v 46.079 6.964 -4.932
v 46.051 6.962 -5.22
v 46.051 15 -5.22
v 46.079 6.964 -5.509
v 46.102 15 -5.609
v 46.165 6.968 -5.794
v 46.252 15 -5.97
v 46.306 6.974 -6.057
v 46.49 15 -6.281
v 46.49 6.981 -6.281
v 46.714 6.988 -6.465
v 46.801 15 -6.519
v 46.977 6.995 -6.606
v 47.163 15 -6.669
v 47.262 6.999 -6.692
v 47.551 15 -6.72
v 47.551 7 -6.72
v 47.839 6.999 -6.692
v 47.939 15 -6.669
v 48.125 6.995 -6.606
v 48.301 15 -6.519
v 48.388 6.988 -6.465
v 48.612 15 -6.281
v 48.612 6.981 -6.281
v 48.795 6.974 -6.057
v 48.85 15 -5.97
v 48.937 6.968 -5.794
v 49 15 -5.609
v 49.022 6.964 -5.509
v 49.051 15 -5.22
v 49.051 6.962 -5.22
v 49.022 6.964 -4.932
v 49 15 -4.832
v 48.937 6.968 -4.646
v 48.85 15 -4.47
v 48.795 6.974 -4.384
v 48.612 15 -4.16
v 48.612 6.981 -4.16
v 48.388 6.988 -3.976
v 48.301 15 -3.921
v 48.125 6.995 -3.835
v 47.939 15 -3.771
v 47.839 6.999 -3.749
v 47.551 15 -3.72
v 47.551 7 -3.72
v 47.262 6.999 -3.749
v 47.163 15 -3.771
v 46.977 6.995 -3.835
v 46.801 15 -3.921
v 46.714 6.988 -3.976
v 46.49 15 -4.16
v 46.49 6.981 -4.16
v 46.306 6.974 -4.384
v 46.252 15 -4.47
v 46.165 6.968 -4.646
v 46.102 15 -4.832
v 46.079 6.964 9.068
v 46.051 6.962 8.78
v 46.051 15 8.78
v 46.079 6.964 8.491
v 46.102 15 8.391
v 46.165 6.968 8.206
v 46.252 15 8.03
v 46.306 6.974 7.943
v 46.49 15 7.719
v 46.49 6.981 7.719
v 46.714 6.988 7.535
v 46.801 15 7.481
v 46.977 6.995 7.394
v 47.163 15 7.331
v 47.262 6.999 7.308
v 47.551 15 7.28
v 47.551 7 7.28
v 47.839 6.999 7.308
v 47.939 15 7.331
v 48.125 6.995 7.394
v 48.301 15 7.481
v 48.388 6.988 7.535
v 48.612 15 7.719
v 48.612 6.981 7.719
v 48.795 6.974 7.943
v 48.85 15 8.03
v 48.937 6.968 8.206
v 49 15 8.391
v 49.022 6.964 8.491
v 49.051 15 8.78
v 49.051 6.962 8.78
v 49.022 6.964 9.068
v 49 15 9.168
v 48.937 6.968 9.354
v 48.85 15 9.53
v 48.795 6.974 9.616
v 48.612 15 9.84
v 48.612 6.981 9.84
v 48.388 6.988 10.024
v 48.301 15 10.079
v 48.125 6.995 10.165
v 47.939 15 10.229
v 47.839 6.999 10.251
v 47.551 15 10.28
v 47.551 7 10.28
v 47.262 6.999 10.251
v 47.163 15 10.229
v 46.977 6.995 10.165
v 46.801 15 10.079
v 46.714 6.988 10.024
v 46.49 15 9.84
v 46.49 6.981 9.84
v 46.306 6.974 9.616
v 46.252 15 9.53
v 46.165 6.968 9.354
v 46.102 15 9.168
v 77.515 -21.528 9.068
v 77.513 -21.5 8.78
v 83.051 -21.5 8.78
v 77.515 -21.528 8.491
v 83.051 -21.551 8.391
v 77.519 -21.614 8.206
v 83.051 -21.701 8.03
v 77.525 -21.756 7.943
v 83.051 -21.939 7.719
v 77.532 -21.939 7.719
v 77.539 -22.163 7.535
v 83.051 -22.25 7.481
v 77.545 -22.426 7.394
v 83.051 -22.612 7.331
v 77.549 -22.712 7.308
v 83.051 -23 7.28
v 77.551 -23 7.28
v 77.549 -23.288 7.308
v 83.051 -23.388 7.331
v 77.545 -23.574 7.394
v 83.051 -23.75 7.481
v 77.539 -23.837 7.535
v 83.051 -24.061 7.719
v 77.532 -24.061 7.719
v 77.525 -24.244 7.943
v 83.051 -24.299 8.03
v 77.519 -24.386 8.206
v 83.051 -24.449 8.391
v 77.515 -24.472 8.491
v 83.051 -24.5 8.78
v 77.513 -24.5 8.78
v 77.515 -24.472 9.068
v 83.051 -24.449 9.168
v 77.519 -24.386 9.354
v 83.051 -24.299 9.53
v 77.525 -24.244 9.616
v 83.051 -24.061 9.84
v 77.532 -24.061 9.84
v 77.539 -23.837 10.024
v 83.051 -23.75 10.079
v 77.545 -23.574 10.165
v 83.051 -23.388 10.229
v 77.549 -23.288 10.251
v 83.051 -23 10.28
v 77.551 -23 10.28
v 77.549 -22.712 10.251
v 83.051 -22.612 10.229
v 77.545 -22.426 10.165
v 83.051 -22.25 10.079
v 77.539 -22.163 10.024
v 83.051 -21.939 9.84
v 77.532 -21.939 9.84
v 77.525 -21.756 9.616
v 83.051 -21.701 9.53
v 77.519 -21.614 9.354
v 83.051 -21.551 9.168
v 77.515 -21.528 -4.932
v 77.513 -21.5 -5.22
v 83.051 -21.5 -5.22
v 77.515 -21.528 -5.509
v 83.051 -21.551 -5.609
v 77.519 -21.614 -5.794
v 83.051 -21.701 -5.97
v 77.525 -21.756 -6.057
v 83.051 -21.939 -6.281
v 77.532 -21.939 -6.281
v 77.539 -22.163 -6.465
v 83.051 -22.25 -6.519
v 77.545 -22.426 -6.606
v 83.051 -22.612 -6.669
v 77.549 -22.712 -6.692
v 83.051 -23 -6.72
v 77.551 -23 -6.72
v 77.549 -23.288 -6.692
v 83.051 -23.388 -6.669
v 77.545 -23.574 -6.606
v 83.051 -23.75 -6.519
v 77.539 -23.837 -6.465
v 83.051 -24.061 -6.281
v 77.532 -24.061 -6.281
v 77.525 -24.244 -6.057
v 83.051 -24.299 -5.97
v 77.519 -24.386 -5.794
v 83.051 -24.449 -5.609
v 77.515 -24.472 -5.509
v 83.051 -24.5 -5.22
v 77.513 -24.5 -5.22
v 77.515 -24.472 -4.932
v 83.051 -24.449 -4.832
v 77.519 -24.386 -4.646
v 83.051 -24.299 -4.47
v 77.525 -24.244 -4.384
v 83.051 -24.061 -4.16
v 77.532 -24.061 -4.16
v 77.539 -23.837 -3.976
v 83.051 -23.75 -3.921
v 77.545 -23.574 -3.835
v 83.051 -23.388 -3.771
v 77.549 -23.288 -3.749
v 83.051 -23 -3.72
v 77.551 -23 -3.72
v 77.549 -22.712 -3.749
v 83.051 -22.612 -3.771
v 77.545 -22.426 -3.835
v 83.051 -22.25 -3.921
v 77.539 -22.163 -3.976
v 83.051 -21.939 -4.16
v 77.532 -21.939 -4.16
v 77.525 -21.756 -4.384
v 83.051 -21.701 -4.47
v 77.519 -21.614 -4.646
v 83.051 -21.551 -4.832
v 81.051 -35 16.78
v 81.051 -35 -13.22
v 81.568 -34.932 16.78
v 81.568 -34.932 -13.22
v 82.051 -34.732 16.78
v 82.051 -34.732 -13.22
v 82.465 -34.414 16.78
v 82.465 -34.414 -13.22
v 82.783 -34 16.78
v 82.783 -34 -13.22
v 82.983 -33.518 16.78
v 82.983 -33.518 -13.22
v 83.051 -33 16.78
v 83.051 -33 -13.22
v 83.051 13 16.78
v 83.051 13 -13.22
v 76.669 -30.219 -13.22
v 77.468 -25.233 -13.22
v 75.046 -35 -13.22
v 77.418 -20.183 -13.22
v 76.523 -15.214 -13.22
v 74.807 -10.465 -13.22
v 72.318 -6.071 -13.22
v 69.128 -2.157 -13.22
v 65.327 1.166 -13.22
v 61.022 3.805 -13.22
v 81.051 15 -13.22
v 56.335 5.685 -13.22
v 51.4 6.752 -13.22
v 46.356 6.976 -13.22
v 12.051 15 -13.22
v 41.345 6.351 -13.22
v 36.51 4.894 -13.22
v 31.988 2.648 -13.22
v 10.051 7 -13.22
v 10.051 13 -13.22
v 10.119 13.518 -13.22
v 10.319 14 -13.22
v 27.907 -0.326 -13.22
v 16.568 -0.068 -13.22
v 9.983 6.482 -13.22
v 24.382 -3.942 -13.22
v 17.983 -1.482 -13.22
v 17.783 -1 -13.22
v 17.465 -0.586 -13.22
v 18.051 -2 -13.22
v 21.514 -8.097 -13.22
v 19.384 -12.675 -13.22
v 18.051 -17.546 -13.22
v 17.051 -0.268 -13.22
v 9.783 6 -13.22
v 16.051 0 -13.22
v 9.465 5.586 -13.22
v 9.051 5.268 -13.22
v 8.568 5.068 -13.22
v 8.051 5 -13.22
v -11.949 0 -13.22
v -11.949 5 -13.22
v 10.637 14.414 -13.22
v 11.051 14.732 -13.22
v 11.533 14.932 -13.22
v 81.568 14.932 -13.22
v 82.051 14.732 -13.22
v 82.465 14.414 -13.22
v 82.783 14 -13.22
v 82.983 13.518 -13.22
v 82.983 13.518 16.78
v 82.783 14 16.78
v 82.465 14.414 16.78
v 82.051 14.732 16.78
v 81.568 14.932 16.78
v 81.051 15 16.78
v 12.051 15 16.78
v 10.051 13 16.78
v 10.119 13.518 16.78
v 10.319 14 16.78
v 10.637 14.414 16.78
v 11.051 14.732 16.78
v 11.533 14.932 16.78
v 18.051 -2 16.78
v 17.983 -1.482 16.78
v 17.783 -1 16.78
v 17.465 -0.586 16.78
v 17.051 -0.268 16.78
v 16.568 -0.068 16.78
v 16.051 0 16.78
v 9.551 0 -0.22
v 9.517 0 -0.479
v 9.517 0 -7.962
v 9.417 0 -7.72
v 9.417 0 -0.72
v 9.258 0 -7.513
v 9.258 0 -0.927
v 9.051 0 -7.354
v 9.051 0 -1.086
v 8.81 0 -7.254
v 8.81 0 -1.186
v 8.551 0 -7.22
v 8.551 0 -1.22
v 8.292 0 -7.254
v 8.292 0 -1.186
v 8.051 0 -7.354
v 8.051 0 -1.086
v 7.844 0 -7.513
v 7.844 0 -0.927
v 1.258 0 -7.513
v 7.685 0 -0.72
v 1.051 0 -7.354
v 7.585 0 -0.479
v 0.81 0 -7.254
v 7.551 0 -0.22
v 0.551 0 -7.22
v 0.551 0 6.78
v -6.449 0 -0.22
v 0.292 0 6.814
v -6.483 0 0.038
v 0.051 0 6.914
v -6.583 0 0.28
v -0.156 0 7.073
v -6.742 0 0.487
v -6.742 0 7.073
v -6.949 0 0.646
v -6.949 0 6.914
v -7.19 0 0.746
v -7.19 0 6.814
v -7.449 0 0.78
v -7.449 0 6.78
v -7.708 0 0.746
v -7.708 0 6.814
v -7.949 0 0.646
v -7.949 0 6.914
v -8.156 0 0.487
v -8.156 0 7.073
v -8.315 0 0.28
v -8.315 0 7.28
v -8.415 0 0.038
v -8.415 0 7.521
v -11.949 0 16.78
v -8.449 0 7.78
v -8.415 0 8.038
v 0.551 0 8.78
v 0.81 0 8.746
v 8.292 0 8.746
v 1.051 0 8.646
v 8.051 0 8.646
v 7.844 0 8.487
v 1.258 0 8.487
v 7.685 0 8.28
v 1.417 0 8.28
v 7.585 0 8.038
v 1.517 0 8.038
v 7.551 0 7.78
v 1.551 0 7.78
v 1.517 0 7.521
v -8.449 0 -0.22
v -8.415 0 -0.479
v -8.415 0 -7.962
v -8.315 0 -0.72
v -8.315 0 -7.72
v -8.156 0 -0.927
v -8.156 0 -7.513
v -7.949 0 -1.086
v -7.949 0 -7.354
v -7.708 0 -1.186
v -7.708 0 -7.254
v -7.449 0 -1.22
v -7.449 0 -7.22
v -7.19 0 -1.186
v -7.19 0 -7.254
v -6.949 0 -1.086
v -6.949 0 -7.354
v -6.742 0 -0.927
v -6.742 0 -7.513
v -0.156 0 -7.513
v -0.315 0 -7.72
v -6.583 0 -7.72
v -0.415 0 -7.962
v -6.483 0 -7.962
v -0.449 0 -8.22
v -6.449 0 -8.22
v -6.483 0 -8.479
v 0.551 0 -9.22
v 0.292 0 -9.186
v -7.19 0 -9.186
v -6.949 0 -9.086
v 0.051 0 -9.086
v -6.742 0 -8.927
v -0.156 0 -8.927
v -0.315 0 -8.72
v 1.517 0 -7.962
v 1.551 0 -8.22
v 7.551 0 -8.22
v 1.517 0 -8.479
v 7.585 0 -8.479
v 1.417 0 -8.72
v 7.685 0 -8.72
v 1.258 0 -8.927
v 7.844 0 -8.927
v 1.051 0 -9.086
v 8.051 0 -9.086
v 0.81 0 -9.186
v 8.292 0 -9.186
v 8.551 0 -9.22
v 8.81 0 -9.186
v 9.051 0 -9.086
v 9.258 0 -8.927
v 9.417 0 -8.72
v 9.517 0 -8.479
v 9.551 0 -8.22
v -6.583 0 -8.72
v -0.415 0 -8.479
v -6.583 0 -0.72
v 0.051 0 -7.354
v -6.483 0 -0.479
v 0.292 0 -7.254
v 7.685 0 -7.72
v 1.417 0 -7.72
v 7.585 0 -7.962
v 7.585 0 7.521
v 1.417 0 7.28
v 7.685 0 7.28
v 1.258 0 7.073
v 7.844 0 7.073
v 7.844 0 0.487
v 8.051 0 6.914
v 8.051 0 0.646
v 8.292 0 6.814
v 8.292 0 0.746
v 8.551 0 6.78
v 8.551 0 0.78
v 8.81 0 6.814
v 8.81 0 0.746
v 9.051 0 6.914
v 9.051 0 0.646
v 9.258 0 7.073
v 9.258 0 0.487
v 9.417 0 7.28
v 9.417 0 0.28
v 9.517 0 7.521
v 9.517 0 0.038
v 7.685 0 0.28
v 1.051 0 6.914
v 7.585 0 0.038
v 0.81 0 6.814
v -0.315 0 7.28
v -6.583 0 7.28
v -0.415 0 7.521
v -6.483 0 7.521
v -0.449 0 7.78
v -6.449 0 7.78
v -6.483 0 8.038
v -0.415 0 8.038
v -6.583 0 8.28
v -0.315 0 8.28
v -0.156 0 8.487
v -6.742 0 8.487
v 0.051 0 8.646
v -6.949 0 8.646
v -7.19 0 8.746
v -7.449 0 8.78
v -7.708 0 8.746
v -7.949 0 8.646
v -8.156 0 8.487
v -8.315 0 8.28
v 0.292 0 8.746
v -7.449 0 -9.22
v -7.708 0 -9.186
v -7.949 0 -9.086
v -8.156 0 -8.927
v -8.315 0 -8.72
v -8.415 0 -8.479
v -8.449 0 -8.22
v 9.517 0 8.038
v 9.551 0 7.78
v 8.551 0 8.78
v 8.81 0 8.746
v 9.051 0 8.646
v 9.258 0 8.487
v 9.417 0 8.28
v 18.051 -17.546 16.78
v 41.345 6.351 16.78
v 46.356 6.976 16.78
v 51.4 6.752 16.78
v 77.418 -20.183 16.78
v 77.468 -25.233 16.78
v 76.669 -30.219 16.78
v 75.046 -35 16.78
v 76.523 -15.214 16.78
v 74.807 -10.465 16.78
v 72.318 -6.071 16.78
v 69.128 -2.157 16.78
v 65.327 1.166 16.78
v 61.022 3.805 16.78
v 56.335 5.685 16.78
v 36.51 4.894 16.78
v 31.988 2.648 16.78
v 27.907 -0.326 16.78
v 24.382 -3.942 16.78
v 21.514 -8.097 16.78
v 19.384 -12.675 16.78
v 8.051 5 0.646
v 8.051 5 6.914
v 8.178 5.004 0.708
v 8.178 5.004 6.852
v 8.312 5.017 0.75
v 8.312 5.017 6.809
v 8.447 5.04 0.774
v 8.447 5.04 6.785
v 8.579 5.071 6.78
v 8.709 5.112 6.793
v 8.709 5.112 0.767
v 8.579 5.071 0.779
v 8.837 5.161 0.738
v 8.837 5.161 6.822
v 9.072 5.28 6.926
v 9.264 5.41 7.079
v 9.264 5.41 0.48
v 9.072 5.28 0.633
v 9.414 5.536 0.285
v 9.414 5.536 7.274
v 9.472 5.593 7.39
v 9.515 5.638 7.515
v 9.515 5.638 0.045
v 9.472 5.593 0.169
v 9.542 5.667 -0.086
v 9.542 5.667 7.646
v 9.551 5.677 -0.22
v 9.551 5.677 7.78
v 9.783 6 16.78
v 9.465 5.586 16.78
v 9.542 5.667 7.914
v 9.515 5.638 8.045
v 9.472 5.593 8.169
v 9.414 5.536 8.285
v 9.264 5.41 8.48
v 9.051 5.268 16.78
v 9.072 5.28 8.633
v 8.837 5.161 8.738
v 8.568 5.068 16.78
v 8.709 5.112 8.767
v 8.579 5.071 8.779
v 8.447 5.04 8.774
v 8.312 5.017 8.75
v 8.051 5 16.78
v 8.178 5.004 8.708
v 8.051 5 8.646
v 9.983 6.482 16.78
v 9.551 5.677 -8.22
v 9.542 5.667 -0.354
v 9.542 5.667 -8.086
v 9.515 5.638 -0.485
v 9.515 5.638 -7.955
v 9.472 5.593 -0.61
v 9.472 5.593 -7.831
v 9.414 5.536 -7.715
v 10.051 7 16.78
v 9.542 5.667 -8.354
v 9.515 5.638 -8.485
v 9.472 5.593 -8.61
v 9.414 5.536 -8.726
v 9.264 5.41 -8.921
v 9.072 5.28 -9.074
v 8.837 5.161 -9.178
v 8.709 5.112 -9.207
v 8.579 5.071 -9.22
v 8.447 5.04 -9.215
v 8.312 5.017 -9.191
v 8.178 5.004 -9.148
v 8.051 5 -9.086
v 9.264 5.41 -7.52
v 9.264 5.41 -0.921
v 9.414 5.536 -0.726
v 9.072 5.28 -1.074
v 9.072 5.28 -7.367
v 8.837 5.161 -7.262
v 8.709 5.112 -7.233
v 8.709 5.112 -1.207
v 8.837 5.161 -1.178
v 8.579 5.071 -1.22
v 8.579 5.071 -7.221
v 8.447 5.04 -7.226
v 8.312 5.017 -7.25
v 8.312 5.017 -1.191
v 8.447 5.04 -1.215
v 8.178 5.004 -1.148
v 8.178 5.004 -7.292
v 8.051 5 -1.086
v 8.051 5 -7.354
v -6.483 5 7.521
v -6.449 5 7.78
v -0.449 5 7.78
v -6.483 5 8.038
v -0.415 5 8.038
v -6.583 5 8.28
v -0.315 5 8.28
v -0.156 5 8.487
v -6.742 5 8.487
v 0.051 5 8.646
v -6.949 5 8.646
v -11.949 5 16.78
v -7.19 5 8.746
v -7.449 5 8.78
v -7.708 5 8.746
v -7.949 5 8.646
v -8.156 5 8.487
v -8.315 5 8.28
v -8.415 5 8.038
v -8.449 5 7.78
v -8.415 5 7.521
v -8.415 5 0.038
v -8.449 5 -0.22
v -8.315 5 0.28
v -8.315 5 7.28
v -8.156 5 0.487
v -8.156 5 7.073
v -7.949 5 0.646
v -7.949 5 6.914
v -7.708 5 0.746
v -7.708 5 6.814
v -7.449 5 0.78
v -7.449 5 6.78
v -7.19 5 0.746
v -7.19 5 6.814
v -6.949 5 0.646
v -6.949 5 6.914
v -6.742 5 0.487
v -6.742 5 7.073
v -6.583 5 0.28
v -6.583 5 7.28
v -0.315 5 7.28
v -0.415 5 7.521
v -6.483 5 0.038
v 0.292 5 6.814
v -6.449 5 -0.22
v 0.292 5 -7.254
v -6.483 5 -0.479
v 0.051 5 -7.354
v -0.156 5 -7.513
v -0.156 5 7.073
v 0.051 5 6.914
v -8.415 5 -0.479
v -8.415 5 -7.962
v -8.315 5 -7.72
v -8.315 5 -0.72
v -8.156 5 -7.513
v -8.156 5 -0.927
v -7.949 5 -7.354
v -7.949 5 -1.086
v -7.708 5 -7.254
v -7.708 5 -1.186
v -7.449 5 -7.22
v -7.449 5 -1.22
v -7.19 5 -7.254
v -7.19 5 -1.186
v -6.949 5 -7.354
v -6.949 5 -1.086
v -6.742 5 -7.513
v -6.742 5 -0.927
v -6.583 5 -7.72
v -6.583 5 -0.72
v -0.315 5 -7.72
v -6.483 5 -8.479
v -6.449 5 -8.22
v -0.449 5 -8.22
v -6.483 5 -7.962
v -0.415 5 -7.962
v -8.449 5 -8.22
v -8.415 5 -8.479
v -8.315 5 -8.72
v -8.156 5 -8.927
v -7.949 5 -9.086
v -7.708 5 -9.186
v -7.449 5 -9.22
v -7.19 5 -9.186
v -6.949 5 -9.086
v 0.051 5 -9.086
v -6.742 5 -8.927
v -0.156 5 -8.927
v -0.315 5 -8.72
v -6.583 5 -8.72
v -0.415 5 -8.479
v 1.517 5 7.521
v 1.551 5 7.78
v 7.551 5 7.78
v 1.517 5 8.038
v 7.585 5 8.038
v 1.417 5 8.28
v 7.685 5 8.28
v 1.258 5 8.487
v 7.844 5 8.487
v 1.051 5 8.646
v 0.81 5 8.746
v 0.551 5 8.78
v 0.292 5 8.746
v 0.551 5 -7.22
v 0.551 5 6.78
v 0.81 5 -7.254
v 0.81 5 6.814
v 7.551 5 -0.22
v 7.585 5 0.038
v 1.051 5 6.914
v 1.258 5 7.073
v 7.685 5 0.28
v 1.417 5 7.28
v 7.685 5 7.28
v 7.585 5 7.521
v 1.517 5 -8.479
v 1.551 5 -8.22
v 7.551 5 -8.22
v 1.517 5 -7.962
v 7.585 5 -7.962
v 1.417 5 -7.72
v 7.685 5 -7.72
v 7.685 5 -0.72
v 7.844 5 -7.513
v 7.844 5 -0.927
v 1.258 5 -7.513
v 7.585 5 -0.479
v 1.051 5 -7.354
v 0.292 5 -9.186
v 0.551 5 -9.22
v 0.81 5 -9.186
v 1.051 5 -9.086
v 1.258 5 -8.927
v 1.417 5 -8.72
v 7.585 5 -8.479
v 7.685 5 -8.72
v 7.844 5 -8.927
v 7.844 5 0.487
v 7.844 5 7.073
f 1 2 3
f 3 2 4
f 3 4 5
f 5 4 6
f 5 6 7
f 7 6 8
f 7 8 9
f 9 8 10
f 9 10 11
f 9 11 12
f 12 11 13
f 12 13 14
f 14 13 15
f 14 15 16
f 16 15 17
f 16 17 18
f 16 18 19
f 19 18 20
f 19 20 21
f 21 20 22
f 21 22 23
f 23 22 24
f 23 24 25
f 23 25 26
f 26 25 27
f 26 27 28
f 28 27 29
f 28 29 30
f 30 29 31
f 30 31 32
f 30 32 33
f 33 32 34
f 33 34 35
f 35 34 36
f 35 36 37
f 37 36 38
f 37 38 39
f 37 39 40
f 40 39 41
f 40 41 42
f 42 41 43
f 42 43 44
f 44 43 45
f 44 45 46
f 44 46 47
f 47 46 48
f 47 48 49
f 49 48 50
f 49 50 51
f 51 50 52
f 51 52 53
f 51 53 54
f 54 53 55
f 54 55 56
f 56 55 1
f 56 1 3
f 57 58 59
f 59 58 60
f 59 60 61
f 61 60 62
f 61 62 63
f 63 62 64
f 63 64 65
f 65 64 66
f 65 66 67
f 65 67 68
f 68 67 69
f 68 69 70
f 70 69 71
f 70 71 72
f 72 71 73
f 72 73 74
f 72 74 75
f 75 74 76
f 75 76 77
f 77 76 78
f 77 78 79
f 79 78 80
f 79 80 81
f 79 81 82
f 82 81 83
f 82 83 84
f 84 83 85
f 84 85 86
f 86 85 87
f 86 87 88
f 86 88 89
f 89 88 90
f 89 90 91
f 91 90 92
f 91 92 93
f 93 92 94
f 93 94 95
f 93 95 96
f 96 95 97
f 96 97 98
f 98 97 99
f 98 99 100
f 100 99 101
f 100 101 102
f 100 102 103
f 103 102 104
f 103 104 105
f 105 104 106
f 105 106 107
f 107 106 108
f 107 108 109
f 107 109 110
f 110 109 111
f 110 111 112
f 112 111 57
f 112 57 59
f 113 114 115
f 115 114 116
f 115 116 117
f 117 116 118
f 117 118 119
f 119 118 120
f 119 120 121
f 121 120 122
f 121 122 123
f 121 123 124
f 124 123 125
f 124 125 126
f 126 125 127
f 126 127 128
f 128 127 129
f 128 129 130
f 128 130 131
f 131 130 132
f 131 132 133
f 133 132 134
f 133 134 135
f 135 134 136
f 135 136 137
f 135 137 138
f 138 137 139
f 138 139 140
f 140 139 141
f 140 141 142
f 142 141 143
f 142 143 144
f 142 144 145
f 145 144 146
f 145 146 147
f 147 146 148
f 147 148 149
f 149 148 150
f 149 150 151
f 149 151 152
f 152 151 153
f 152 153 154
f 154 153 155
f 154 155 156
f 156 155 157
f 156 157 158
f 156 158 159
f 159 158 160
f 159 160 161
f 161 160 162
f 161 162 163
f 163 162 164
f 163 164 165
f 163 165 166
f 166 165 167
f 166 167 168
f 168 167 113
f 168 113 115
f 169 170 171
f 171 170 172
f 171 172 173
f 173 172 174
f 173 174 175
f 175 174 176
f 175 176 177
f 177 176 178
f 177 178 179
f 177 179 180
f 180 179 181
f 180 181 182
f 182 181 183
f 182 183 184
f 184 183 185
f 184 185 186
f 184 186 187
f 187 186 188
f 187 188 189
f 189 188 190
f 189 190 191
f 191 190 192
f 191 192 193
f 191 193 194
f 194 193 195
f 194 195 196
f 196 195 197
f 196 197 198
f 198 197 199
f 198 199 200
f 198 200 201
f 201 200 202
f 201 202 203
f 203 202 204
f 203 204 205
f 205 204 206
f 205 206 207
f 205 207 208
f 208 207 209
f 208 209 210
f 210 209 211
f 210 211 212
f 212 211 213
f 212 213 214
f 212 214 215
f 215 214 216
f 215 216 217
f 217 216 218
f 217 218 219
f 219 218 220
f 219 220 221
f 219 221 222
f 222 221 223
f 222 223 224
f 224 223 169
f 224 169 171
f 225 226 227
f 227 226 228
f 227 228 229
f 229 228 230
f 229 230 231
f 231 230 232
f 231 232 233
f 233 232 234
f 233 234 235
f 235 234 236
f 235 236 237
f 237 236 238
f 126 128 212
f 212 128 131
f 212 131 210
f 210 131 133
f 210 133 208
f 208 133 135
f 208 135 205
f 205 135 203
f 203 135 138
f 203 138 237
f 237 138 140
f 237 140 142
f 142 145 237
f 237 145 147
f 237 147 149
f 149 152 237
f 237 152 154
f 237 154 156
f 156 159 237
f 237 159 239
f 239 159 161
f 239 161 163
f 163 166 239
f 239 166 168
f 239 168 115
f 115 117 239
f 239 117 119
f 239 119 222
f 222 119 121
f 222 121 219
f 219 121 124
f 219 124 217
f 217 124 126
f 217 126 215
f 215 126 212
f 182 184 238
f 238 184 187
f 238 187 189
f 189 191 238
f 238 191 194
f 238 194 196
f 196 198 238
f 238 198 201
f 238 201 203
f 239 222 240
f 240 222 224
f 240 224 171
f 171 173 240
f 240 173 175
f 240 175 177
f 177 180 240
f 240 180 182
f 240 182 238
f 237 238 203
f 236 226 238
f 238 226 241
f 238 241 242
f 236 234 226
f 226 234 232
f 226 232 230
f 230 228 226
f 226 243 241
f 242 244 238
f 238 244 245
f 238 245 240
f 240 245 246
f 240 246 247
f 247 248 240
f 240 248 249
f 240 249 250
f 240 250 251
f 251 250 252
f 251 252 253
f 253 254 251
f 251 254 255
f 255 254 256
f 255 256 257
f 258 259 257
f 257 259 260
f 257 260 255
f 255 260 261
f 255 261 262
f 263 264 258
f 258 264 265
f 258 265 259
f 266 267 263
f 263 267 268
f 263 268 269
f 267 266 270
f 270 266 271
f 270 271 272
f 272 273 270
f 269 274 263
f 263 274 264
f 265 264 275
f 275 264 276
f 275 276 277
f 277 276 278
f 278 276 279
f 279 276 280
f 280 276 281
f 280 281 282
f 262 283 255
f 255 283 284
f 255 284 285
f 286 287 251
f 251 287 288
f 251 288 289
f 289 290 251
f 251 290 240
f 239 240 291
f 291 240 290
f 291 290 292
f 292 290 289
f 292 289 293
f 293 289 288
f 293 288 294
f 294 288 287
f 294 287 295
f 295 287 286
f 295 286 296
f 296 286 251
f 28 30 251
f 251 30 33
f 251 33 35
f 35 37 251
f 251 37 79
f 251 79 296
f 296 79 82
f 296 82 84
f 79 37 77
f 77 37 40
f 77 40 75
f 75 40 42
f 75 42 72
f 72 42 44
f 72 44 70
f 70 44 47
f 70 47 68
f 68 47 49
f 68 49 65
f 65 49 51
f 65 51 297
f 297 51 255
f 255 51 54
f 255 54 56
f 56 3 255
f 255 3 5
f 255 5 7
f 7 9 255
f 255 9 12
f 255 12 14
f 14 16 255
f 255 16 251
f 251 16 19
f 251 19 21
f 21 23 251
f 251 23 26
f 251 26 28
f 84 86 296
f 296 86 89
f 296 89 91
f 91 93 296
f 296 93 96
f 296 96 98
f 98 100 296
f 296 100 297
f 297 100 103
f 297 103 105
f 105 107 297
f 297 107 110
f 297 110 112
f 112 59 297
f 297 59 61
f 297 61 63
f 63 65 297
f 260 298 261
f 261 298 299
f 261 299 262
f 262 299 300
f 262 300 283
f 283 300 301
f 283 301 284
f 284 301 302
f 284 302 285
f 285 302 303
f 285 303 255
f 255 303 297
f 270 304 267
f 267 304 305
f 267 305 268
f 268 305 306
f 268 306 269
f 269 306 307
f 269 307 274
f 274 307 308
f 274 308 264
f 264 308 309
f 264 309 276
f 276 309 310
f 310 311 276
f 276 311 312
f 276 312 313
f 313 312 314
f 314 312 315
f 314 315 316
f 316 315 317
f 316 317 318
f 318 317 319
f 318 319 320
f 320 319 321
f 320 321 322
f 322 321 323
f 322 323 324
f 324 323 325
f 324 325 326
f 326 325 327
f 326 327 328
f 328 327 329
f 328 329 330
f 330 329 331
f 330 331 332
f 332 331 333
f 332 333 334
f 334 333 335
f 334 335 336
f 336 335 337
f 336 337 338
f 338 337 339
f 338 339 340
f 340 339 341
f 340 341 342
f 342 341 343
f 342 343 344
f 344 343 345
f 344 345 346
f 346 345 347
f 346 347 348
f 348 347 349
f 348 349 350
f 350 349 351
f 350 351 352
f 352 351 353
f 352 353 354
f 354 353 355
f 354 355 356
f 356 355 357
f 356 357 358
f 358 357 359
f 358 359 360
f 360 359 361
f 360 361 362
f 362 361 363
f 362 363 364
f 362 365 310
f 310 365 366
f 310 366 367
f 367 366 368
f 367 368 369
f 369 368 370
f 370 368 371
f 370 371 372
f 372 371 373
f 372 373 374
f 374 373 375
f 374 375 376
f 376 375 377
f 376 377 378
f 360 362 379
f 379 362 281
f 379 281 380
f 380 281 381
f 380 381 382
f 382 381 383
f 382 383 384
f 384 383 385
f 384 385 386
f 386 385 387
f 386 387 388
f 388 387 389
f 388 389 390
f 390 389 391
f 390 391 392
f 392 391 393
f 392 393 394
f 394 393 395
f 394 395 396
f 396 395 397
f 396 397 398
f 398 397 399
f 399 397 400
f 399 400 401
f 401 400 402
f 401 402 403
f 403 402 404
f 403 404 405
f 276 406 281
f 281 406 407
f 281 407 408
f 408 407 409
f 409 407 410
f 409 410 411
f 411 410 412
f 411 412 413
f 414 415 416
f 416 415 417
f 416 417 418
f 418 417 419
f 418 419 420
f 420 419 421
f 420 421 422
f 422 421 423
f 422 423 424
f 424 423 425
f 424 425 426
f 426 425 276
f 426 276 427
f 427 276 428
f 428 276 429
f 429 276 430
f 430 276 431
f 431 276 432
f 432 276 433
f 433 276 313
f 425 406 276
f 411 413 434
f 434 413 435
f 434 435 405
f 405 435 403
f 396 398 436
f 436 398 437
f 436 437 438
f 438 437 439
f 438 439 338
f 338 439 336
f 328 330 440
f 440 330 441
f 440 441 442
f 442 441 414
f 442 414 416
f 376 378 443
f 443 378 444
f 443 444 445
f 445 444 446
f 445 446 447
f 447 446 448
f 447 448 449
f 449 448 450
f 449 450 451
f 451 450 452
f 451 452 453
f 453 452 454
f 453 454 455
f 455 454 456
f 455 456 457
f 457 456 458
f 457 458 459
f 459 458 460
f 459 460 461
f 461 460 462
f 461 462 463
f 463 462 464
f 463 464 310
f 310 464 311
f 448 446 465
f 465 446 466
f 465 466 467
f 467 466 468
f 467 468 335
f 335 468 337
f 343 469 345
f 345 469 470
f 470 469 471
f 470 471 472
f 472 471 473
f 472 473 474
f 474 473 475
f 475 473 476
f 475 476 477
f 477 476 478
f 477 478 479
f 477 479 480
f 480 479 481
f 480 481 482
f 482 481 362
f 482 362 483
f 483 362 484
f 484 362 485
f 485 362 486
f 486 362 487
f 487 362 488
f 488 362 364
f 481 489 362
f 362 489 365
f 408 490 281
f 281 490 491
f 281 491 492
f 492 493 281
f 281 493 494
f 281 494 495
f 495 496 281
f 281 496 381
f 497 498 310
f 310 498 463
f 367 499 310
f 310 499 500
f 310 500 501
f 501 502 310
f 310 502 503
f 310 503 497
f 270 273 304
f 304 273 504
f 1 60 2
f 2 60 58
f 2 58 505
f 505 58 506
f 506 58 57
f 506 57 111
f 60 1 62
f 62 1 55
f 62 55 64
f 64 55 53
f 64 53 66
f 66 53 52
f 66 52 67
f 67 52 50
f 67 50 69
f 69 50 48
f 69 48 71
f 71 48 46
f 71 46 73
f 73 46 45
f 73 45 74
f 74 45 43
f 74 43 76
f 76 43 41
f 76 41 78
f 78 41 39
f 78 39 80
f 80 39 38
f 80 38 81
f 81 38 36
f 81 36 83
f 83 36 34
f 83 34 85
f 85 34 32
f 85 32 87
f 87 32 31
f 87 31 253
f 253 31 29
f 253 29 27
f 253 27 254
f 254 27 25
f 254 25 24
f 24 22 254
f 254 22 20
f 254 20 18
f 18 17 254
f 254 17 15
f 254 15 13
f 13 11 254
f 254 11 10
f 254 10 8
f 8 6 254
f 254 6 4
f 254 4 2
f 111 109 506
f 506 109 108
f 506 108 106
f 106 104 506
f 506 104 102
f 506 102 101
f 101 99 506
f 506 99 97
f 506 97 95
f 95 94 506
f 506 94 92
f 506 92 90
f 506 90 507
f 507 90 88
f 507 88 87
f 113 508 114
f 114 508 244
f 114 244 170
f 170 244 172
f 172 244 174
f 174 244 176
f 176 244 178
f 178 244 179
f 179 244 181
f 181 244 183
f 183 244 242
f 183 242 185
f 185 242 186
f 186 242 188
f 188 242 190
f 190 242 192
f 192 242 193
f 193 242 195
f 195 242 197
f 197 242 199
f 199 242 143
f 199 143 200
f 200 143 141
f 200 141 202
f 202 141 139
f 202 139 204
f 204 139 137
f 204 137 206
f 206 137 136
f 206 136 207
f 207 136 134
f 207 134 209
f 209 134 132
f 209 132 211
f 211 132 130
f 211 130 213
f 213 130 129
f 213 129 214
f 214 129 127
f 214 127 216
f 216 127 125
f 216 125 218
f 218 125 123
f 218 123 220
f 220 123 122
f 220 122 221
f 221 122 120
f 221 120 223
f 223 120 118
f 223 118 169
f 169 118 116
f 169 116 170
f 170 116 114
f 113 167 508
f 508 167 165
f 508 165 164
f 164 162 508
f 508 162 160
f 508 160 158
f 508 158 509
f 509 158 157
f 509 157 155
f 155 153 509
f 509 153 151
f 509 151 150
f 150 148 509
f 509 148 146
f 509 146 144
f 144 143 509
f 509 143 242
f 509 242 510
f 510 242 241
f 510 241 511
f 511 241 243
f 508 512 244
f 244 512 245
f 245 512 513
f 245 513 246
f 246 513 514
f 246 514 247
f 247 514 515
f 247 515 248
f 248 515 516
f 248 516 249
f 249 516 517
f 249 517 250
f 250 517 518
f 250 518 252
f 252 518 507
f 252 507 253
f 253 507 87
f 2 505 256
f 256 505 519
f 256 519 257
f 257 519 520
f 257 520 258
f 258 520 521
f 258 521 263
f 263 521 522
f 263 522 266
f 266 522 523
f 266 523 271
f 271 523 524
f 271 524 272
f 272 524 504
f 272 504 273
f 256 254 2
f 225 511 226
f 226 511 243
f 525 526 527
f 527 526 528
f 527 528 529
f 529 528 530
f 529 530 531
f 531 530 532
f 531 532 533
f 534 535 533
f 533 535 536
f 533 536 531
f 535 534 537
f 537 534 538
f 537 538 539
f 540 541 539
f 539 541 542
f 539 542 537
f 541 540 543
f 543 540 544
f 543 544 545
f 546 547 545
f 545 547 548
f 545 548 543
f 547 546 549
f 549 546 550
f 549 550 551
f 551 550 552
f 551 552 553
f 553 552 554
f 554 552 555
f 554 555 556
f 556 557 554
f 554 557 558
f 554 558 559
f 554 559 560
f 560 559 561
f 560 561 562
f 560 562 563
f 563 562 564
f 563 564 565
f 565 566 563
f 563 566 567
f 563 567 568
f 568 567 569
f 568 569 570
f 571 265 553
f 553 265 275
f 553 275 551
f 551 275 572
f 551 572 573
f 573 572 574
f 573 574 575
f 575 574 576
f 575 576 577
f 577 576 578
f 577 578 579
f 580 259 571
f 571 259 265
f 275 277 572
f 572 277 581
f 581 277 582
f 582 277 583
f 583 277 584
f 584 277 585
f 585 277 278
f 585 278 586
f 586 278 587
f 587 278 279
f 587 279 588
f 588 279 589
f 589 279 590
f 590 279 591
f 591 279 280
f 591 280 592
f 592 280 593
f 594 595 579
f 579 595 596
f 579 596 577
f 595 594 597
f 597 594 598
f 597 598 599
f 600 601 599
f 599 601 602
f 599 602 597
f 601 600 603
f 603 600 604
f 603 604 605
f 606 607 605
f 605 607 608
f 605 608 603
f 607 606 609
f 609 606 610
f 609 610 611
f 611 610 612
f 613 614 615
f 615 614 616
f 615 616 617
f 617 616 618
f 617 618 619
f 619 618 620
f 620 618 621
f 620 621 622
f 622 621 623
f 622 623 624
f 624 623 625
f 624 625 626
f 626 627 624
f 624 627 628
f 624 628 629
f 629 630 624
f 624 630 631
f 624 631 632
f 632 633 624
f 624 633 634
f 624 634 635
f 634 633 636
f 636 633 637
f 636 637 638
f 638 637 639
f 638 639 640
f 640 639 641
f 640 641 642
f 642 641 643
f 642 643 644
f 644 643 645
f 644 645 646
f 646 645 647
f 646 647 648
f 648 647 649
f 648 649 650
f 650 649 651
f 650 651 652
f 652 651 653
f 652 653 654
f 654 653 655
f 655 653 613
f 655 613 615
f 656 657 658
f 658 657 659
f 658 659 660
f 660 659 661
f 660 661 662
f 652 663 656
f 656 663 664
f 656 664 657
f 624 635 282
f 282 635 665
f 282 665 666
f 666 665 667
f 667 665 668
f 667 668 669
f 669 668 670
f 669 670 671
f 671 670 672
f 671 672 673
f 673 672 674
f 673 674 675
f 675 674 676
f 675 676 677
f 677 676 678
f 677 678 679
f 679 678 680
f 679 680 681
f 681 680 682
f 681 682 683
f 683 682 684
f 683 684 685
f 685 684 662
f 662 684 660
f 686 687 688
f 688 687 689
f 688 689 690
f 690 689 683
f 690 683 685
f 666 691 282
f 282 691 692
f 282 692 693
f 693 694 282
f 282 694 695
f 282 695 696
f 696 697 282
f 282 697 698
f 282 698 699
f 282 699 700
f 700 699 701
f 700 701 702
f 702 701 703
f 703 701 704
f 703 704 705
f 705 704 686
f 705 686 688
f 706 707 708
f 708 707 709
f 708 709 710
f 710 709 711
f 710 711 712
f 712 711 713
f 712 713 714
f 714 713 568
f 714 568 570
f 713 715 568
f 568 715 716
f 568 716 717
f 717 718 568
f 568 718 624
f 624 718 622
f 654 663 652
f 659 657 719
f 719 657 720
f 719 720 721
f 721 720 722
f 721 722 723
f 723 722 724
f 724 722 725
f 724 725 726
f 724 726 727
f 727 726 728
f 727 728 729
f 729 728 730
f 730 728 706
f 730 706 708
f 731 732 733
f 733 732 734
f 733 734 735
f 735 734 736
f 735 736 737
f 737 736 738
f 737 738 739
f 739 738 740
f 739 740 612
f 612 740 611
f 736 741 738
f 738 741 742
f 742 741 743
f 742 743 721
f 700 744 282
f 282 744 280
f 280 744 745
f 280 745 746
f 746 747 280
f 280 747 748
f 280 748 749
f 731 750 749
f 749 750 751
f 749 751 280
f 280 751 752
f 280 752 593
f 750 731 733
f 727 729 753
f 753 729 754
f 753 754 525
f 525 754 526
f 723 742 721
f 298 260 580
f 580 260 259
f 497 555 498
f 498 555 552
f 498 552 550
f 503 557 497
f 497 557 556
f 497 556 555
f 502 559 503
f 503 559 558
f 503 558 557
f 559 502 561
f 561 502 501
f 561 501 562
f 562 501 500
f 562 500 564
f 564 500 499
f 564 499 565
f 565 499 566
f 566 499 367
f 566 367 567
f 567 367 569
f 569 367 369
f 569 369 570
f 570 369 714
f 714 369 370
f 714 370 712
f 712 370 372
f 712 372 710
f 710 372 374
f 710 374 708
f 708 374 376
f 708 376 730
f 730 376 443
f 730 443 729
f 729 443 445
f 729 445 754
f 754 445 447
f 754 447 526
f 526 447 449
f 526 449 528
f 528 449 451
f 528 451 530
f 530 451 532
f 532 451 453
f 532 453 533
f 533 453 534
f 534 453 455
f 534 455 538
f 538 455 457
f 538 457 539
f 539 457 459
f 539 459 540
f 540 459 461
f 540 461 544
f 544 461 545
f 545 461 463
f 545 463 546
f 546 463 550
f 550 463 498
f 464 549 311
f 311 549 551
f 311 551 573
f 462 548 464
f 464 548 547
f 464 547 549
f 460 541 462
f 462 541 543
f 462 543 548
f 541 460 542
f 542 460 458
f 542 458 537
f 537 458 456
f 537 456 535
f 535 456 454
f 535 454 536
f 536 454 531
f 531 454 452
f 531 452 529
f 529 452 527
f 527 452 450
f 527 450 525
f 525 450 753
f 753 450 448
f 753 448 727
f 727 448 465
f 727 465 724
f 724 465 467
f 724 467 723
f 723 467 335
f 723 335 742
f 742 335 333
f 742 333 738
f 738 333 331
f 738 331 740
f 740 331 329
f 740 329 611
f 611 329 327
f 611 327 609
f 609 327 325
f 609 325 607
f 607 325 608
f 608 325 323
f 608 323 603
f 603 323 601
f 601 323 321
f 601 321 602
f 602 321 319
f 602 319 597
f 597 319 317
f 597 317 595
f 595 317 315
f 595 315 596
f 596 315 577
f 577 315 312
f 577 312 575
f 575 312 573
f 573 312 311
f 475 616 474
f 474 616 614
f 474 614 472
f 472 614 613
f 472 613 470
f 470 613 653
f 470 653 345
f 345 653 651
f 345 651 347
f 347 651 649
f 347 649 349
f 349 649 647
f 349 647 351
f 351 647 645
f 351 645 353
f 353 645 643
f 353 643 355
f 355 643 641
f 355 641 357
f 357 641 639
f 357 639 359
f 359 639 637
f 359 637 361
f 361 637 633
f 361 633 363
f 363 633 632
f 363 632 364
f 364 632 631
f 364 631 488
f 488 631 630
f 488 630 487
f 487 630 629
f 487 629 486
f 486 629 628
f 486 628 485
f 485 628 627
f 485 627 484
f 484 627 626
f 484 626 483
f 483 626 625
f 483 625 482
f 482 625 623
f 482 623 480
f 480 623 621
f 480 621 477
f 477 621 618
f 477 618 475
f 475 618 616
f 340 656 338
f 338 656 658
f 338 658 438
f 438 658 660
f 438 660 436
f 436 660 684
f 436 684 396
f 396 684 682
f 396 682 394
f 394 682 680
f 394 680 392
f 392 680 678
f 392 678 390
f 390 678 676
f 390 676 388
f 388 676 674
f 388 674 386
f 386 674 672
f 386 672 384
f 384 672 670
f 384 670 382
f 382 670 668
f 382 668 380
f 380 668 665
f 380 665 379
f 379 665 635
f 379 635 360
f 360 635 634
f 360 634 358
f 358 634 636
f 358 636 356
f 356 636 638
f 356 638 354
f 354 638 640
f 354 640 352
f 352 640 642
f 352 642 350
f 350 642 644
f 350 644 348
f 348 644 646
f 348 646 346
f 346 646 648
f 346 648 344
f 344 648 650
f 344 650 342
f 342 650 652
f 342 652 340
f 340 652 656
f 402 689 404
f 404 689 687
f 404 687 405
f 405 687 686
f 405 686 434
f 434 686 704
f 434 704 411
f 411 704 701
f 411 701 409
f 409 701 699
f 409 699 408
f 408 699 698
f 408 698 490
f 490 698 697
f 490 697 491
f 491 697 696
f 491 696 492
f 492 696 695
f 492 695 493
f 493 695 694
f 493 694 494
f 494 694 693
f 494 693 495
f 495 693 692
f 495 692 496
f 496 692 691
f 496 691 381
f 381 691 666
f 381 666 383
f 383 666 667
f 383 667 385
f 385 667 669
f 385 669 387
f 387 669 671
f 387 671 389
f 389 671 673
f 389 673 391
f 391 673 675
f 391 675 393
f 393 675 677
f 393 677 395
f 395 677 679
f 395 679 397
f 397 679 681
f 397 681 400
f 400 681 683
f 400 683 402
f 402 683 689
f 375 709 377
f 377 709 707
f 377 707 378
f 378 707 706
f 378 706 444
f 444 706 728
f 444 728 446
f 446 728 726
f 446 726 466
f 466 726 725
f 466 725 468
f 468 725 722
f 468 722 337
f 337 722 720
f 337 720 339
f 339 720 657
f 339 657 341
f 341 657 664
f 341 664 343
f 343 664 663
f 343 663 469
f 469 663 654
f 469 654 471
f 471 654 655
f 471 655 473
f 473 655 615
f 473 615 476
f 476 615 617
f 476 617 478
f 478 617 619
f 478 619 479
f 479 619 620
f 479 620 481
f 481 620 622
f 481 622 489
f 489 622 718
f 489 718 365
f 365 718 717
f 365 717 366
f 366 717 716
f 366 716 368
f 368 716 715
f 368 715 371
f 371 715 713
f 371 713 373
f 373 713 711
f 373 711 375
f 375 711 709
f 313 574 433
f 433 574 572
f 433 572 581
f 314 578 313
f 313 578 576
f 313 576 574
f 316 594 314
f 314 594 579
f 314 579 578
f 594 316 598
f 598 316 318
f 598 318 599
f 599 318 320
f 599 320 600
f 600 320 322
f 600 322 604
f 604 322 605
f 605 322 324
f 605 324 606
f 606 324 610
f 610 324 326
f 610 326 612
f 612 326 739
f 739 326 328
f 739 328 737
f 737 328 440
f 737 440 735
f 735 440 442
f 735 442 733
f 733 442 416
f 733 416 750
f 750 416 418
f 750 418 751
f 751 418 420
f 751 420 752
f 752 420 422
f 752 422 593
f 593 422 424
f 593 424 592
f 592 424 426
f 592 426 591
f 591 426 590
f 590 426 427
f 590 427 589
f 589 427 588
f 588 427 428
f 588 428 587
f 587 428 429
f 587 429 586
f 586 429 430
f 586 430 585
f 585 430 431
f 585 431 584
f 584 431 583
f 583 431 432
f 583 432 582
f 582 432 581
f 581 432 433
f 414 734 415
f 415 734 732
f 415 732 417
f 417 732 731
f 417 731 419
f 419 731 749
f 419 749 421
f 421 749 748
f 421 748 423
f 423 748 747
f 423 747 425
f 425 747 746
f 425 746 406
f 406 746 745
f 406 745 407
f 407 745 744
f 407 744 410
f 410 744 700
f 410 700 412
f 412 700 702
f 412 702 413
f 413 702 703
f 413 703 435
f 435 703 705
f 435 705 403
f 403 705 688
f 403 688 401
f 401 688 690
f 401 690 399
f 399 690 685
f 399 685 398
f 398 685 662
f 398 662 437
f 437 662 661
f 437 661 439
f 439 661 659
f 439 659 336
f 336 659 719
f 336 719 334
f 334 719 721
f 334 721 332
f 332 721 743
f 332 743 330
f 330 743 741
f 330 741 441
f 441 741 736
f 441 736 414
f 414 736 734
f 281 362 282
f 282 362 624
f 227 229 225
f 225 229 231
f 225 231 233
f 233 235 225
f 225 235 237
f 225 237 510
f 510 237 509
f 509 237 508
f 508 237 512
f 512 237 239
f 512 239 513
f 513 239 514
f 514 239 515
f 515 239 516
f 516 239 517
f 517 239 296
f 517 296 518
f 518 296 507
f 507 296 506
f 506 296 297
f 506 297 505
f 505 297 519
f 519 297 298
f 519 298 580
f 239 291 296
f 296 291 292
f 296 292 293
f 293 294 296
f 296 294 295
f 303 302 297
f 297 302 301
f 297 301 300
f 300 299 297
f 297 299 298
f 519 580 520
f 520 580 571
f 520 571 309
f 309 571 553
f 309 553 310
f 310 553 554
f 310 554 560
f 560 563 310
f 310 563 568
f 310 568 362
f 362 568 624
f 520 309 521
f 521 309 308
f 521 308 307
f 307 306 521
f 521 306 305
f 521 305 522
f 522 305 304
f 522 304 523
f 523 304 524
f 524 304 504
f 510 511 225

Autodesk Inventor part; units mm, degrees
ref_plane "YZ Plane" through (0, 0, 0) normal (1, 0, 0) x (0, 1, 0)
ref_plane "XZ Plane" through (0, 0, 0) normal (0, 1, 0) x (-1, 0, 0)
ref_plane "XY Plane" through (0, 0, 0) normal (0, 0, 1) x (1, 0, 0)
sketch "Esquisse1" plane through (0, 0, 0) normal (0, 1, 0) x (-1, 0, 0)
  line L0 (11.9492, 16.7797) -> (-18.0508, 16.7797)
  line L1 (-18.0508, 16.7797) -> (-18.0508, -13.2203)
  line L2 (-18.0508, -13.2203) -> (11.9492, -13.2203)
  line L3 (11.9492, -13.2203) -> (11.9492, 16.7797)
  point P0 (0, 0)
  dimension "d0" = 30
  dimension "d1" = 30
extrude "Extrusion1" add sketch "Esquisse1" along normal blind 5
sketch "Esquisse2" plane through (0, 5, 0) normal (0, 1, 0) x (1, 0, 0)
  line L0 (-11.9492, 17.2203) -> (-2.9492, 17.2203) projected
  line L1 (-11.9492, -16.7797) -> (-11.9492, 17.2203) projected
  line L2 (-11.9492, -16.7797) -> (-2.9492, -16.7797) projected
  line L3 (-2.9492, -15.7797) -> (-2.9492, -16.7797) projected
  line L4 (-2.9492, -15.7797) -> (5.0508, -15.7797) projected
  line L5 (5.0508, -15.7797) -> (5.0508, -16.7797) projected
  line L6 (5.0508, -16.7797) -> (13.0508, -16.7797) projected
  line L7 (13.0508, 17.2203) -> (13.0508, -16.7797) projected
  line L8 (5.0508, 17.2203) -> (13.0508, 17.2203) projected
  line L9 (5.0508, 16.2203) -> (5.0508, 17.2203) projected
  line L10 (-2.9492, 16.2203) -> (5.0508, 16.2203) projected
  line L11 (-2.9492, 16.2203) -> (-2.9492, 17.2203) projected
  circle A0 centre (-7.4492, 0.2203) radius 1 projected
  circle A1 centre (-7.4492, 8.2203) radius 1 projected
  circle A2 centre (-7.4492, -7.7797) radius 1 projected
  circle A3 centre (0.5508, -7.7797) radius 1 projected
  circle A4 centre (8.5508, 0.2203) radius 1 projected
  circle A5 centre (8.5508, 8.2203) radius 1 projected
  circle A6 centre (8.5508, -7.7797) radius 1 projected
  circle A7 centre (0.5508, 8.2203) radius 1 projected
  arc A8 (3.5508, -2.4254) -> (3.5508, 2.8661) centre (0.5508, 0.2203) ccw projected
  line L12 (3.5508, -2.4254) -> (3.5508, -4.7797) projected
  line L13 (3.5508, -4.7797) -> (-2.4492, -4.7797) projected
  line L14 (-2.4492, -4.7797) -> (-2.4492, -2.4254) projected
  arc A9 (-2.4492, 2.8661) -> (-2.4492, -2.4254) centre (0.5508, 0.2203) ccw projected
  line L15 (-2.4492, 2.8661) -> (-2.4492, 5.2203) projected
  line L16 (-2.4492, 5.2203) -> (3.5508, 5.2203) projected
  line L17 (3.5508, 5.2203) -> (3.5508, 2.8661) projected
  circle A10 centre (8.5508, 8.2203) radius 1
  circle A11 centre (8.5508, 0.2203) radius 1
  circle A12 centre (8.5508, -7.7797) radius 1
  circle A13 centre (0.5508, -7.7797) radius 1
  circle A14 centre (-7.4492, -7.7797) radius 1
  circle A15 centre (-7.4492, 0.2203) radius 1
  circle A16 centre (-7.4492, 8.2203) radius 1
  circle A17 centre (0.5508, 8.2203) radius 1
  point P0 (0, 0)
extrude "Extrusion2" cut sketch "Esquisse2" against normal through all contours A0 | A1 | A2 | A3 | A4 | A5 | A6 | A7
sketch "Esquisse3" plane through (0, 5, 0) normal (0, 1, 0) x (1, 0, 0)
  line L0 (18.0508, 13.2203) -> (-11.9492, 13.2203) projected
  line L1 (10.0508, -16.7797) -> (10.0508, 13.2203)
  line L2 (-11.9492, -16.7797) -> (18.0508, -16.7797) projected
  line L3 (18.0508, -16.7797) -> (18.0508, 13.2203) projected
  line L4 (10.0508, 13.2203) -> (18.0508, 13.2203)
  line L5 (18.0508, 13.2203) -> (18.0508, -16.7797)
  line L6 (18.0508, -16.7797) -> (10.0508, -16.7797)
  line L7 (10.0508, -16.7797) -> (10.0508, 13.2203)
  point P0 (0, 0)
  dimension "d7" = 8
extrude "Extrusion3" add sketch "Esquisse3" along normal blind 10
fillet "Congé4" radius 2 1 edges at (10.0508, 5, 1.7797)
sketch "Esquisse5" plane through (-11.9492, 0, 16.7797) normal (0, 0, 1) x (1, 0, 0)
  circle A0 centre (59.5, -23) radius 30 projected
  line L0 (30, 0) -> (30, 15) projected
  line L1 (30, 15) -> (95, 15)
  line L2 (95, 15) -> (95, -35)
  line L3 (30, -17.5456) -> (30, 15)
  arc A1 (86.9955, -35) -> (30, -17.5456) centre (59.5, -23) ccw
  line L4 (95, -35) -> (86.9955, -35)
  line L5 (32.0045, -35) -> (30, -35)
  point P0 (11.9492, 0)
  dimension "d17" = 65
  dimension "d18" = 50
extrude "Extrusion4" add sketch "Esquisse5" against normal blind 30 contours A0 L3 L0 L1 L2 L4
fillet "Congé5" radius 2 1 edges at (18.0508, 0, 1.7797)
fillet "Congé6" radius 2 1 edges at (10.0508, 15, 1.7797)
fillet "Congé7" radius 2 1 edges at (83.0508, 15, 1.7797)
fillet "Congé8" radius 2 1 edges at (83.0508, -35, 1.7797)
sketch "Esquisse6" plane through (83.0508, 13, 16.7797) normal (1, 0, 0) x (0, 0, -1)
  circle A0 centre (8, -36) radius 1.5
  circle A1 centre (22, -36) radius 1.5
  line L0 (0, -46) -> (0, 0) projected
  line L1 (30, 0) -> (30, -46) projected
  line L2 (171, -6) -> (-4, -6)
  line L3 (171, -66) -> (-4, -66)
  point P0 (16.7797, -13)
  dimension "d25" = 3
  dimension "d26" = 3
  dimension "d27" = 8
  dimension "d28" = 8
  dimension "d29" = 30
  dimension "d30" = 30
extrude "Extrusion5" cut sketch "Esquisse6" against normal through all
sketch "Esquisse7" plane through (0, 15, 0) normal (0, 1, 0) x (1, 0, 0)
  circle A0 centre (47.5508, 5.2203) radius 1.5
  circle A1 centre (47.5508, -8.7797) radius 1.5
  line L0 (12.0508, -16.7797) -> (81.0508, -16.7797) projected
  line L1 (12.0508, 13.2203) -> (81.0508, 13.2203) projected
  line L2 (17.5508, 154.2203) -> (17.5508, -20.7797)
  point P0 (0, 0)
  dimension "d33" = 3
  dimension "d34" = 3
  dimension "d35" = 8
  dimension "d36" = 8
  dimension "d37" = 30
  dimension "d38" = 30
extrude "Extrusion6" cut sketch "Esquisse7" against normal through all
properties part number "support-trappe"
